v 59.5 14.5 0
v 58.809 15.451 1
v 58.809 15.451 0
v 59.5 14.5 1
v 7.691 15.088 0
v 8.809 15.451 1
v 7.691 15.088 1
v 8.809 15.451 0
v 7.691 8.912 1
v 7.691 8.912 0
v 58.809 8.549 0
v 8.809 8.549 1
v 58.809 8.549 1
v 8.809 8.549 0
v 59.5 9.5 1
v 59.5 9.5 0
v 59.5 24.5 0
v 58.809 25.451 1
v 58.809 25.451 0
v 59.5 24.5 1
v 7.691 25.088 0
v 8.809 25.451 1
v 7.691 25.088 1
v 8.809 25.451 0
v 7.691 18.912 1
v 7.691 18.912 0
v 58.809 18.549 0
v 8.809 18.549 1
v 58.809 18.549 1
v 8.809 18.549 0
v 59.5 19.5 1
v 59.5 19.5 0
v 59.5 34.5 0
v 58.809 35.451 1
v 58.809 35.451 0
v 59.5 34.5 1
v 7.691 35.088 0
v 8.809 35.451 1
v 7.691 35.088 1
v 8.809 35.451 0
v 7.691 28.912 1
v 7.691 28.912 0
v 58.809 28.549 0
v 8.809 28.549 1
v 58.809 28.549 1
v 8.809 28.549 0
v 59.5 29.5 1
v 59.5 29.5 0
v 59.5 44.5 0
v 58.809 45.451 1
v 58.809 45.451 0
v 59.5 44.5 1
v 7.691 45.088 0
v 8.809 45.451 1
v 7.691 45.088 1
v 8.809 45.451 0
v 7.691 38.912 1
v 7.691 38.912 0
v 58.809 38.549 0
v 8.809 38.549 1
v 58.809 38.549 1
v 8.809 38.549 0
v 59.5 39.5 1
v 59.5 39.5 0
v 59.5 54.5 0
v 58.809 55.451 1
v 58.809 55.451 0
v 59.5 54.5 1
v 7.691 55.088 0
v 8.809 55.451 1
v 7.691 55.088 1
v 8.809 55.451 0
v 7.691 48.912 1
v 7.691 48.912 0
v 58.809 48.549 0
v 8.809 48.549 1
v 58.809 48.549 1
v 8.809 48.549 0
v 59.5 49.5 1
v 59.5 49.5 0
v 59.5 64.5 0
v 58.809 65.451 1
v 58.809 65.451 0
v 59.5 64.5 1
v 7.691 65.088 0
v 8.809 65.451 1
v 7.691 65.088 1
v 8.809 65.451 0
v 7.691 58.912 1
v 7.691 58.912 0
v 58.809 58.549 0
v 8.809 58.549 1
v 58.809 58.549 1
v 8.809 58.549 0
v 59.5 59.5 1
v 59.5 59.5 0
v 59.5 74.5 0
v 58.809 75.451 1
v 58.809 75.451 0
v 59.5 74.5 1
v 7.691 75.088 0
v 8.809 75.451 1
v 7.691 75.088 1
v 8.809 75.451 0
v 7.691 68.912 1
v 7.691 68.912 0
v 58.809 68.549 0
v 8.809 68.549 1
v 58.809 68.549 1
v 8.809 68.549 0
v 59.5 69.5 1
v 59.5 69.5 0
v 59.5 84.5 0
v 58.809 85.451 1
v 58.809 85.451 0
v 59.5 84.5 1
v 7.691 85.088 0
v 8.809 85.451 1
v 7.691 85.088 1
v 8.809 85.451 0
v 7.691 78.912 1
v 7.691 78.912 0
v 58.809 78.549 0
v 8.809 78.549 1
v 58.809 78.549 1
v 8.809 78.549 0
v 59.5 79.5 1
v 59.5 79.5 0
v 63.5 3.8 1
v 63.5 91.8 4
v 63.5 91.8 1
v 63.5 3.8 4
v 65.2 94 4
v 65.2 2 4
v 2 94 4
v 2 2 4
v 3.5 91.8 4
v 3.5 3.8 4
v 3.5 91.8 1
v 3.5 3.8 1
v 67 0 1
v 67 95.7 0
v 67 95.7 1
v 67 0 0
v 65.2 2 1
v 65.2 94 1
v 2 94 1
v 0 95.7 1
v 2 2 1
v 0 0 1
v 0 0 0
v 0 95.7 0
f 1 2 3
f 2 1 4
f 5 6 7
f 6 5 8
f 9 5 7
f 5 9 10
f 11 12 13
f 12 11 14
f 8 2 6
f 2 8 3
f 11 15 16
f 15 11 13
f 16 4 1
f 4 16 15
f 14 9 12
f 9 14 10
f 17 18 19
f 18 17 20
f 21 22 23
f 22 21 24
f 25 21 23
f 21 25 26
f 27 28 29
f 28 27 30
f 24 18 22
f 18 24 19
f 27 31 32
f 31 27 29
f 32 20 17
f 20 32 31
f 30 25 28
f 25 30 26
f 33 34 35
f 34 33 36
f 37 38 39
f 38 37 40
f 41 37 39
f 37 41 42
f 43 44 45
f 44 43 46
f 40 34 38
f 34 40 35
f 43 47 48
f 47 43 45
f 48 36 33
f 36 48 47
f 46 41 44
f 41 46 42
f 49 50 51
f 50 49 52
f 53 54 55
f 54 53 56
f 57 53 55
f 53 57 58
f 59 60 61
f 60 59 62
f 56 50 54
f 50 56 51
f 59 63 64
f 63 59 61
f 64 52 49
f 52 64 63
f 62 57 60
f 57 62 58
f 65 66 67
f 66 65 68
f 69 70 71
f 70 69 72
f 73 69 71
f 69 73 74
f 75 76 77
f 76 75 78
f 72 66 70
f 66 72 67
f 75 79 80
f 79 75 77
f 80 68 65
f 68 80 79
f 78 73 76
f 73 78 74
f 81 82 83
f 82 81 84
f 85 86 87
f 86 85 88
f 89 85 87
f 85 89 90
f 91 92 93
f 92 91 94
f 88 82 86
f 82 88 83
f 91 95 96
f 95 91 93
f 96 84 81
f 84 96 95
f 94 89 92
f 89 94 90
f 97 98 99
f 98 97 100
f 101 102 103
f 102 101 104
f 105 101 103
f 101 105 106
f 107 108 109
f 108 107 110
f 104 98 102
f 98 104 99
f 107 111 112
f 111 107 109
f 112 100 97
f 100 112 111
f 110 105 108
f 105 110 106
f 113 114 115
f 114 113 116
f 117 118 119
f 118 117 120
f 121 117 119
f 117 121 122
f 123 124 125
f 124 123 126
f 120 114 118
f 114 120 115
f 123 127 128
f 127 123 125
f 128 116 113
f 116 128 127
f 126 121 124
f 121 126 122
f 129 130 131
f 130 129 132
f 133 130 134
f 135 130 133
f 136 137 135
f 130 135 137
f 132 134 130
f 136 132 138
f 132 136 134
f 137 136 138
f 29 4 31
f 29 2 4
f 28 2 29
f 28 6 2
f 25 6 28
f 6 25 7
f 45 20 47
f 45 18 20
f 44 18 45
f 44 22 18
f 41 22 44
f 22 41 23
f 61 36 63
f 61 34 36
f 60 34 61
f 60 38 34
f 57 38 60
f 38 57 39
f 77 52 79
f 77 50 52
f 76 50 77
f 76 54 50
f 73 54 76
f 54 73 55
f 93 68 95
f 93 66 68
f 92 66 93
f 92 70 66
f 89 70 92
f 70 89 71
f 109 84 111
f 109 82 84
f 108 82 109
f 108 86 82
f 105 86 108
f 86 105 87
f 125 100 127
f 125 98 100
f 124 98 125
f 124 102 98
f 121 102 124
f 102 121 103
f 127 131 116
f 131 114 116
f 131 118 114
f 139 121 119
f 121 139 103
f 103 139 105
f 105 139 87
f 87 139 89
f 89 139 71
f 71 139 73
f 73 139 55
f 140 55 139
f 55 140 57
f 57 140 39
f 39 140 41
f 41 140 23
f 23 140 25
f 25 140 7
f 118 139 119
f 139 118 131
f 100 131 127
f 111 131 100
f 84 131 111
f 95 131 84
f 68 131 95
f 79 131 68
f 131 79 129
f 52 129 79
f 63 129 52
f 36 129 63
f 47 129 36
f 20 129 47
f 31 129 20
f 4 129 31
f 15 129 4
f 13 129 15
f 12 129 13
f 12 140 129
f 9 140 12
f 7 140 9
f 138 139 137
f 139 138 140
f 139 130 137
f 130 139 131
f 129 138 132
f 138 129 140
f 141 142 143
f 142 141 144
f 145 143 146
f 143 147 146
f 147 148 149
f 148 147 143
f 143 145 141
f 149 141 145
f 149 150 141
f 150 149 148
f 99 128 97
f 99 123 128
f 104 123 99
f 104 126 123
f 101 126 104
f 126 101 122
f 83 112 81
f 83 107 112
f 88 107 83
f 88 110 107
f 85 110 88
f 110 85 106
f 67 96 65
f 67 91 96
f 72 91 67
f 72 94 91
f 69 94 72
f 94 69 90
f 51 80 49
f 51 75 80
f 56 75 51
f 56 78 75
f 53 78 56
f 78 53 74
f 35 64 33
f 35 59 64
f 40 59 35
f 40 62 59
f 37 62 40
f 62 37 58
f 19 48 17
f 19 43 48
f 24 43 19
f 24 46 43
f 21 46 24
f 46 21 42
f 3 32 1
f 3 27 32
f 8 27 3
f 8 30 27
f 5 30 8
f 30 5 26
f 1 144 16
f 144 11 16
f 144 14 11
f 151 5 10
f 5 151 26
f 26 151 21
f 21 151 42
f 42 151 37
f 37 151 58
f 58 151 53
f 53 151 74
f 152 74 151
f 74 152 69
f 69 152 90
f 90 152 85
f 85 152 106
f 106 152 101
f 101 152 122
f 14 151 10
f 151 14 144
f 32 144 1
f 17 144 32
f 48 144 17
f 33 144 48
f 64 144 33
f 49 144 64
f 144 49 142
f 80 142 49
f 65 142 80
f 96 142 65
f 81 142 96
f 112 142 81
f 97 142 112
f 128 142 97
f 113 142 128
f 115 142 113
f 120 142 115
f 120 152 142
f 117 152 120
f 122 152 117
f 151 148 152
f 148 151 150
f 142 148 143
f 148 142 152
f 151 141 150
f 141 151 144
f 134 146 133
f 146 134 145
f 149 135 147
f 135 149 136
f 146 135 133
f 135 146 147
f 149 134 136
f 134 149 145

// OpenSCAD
difference() {
  union() {
    cube(size=[67,95.7,1]);
    translate(v=[2,2,1])
    cube(size=[63.2,92,3]);
  }

  union() {
    translate(v=[3.5, 3.8,1])
      cube(size=[60,88,3]);

    for(i=[0:7]) {
      translate(v=[33.5,i*10 + 12,0])
      minkowski() {
        cylinder(h=1,r=1);
        cube(size=[50,5,10], center=true);
      }
    }
  }
}
